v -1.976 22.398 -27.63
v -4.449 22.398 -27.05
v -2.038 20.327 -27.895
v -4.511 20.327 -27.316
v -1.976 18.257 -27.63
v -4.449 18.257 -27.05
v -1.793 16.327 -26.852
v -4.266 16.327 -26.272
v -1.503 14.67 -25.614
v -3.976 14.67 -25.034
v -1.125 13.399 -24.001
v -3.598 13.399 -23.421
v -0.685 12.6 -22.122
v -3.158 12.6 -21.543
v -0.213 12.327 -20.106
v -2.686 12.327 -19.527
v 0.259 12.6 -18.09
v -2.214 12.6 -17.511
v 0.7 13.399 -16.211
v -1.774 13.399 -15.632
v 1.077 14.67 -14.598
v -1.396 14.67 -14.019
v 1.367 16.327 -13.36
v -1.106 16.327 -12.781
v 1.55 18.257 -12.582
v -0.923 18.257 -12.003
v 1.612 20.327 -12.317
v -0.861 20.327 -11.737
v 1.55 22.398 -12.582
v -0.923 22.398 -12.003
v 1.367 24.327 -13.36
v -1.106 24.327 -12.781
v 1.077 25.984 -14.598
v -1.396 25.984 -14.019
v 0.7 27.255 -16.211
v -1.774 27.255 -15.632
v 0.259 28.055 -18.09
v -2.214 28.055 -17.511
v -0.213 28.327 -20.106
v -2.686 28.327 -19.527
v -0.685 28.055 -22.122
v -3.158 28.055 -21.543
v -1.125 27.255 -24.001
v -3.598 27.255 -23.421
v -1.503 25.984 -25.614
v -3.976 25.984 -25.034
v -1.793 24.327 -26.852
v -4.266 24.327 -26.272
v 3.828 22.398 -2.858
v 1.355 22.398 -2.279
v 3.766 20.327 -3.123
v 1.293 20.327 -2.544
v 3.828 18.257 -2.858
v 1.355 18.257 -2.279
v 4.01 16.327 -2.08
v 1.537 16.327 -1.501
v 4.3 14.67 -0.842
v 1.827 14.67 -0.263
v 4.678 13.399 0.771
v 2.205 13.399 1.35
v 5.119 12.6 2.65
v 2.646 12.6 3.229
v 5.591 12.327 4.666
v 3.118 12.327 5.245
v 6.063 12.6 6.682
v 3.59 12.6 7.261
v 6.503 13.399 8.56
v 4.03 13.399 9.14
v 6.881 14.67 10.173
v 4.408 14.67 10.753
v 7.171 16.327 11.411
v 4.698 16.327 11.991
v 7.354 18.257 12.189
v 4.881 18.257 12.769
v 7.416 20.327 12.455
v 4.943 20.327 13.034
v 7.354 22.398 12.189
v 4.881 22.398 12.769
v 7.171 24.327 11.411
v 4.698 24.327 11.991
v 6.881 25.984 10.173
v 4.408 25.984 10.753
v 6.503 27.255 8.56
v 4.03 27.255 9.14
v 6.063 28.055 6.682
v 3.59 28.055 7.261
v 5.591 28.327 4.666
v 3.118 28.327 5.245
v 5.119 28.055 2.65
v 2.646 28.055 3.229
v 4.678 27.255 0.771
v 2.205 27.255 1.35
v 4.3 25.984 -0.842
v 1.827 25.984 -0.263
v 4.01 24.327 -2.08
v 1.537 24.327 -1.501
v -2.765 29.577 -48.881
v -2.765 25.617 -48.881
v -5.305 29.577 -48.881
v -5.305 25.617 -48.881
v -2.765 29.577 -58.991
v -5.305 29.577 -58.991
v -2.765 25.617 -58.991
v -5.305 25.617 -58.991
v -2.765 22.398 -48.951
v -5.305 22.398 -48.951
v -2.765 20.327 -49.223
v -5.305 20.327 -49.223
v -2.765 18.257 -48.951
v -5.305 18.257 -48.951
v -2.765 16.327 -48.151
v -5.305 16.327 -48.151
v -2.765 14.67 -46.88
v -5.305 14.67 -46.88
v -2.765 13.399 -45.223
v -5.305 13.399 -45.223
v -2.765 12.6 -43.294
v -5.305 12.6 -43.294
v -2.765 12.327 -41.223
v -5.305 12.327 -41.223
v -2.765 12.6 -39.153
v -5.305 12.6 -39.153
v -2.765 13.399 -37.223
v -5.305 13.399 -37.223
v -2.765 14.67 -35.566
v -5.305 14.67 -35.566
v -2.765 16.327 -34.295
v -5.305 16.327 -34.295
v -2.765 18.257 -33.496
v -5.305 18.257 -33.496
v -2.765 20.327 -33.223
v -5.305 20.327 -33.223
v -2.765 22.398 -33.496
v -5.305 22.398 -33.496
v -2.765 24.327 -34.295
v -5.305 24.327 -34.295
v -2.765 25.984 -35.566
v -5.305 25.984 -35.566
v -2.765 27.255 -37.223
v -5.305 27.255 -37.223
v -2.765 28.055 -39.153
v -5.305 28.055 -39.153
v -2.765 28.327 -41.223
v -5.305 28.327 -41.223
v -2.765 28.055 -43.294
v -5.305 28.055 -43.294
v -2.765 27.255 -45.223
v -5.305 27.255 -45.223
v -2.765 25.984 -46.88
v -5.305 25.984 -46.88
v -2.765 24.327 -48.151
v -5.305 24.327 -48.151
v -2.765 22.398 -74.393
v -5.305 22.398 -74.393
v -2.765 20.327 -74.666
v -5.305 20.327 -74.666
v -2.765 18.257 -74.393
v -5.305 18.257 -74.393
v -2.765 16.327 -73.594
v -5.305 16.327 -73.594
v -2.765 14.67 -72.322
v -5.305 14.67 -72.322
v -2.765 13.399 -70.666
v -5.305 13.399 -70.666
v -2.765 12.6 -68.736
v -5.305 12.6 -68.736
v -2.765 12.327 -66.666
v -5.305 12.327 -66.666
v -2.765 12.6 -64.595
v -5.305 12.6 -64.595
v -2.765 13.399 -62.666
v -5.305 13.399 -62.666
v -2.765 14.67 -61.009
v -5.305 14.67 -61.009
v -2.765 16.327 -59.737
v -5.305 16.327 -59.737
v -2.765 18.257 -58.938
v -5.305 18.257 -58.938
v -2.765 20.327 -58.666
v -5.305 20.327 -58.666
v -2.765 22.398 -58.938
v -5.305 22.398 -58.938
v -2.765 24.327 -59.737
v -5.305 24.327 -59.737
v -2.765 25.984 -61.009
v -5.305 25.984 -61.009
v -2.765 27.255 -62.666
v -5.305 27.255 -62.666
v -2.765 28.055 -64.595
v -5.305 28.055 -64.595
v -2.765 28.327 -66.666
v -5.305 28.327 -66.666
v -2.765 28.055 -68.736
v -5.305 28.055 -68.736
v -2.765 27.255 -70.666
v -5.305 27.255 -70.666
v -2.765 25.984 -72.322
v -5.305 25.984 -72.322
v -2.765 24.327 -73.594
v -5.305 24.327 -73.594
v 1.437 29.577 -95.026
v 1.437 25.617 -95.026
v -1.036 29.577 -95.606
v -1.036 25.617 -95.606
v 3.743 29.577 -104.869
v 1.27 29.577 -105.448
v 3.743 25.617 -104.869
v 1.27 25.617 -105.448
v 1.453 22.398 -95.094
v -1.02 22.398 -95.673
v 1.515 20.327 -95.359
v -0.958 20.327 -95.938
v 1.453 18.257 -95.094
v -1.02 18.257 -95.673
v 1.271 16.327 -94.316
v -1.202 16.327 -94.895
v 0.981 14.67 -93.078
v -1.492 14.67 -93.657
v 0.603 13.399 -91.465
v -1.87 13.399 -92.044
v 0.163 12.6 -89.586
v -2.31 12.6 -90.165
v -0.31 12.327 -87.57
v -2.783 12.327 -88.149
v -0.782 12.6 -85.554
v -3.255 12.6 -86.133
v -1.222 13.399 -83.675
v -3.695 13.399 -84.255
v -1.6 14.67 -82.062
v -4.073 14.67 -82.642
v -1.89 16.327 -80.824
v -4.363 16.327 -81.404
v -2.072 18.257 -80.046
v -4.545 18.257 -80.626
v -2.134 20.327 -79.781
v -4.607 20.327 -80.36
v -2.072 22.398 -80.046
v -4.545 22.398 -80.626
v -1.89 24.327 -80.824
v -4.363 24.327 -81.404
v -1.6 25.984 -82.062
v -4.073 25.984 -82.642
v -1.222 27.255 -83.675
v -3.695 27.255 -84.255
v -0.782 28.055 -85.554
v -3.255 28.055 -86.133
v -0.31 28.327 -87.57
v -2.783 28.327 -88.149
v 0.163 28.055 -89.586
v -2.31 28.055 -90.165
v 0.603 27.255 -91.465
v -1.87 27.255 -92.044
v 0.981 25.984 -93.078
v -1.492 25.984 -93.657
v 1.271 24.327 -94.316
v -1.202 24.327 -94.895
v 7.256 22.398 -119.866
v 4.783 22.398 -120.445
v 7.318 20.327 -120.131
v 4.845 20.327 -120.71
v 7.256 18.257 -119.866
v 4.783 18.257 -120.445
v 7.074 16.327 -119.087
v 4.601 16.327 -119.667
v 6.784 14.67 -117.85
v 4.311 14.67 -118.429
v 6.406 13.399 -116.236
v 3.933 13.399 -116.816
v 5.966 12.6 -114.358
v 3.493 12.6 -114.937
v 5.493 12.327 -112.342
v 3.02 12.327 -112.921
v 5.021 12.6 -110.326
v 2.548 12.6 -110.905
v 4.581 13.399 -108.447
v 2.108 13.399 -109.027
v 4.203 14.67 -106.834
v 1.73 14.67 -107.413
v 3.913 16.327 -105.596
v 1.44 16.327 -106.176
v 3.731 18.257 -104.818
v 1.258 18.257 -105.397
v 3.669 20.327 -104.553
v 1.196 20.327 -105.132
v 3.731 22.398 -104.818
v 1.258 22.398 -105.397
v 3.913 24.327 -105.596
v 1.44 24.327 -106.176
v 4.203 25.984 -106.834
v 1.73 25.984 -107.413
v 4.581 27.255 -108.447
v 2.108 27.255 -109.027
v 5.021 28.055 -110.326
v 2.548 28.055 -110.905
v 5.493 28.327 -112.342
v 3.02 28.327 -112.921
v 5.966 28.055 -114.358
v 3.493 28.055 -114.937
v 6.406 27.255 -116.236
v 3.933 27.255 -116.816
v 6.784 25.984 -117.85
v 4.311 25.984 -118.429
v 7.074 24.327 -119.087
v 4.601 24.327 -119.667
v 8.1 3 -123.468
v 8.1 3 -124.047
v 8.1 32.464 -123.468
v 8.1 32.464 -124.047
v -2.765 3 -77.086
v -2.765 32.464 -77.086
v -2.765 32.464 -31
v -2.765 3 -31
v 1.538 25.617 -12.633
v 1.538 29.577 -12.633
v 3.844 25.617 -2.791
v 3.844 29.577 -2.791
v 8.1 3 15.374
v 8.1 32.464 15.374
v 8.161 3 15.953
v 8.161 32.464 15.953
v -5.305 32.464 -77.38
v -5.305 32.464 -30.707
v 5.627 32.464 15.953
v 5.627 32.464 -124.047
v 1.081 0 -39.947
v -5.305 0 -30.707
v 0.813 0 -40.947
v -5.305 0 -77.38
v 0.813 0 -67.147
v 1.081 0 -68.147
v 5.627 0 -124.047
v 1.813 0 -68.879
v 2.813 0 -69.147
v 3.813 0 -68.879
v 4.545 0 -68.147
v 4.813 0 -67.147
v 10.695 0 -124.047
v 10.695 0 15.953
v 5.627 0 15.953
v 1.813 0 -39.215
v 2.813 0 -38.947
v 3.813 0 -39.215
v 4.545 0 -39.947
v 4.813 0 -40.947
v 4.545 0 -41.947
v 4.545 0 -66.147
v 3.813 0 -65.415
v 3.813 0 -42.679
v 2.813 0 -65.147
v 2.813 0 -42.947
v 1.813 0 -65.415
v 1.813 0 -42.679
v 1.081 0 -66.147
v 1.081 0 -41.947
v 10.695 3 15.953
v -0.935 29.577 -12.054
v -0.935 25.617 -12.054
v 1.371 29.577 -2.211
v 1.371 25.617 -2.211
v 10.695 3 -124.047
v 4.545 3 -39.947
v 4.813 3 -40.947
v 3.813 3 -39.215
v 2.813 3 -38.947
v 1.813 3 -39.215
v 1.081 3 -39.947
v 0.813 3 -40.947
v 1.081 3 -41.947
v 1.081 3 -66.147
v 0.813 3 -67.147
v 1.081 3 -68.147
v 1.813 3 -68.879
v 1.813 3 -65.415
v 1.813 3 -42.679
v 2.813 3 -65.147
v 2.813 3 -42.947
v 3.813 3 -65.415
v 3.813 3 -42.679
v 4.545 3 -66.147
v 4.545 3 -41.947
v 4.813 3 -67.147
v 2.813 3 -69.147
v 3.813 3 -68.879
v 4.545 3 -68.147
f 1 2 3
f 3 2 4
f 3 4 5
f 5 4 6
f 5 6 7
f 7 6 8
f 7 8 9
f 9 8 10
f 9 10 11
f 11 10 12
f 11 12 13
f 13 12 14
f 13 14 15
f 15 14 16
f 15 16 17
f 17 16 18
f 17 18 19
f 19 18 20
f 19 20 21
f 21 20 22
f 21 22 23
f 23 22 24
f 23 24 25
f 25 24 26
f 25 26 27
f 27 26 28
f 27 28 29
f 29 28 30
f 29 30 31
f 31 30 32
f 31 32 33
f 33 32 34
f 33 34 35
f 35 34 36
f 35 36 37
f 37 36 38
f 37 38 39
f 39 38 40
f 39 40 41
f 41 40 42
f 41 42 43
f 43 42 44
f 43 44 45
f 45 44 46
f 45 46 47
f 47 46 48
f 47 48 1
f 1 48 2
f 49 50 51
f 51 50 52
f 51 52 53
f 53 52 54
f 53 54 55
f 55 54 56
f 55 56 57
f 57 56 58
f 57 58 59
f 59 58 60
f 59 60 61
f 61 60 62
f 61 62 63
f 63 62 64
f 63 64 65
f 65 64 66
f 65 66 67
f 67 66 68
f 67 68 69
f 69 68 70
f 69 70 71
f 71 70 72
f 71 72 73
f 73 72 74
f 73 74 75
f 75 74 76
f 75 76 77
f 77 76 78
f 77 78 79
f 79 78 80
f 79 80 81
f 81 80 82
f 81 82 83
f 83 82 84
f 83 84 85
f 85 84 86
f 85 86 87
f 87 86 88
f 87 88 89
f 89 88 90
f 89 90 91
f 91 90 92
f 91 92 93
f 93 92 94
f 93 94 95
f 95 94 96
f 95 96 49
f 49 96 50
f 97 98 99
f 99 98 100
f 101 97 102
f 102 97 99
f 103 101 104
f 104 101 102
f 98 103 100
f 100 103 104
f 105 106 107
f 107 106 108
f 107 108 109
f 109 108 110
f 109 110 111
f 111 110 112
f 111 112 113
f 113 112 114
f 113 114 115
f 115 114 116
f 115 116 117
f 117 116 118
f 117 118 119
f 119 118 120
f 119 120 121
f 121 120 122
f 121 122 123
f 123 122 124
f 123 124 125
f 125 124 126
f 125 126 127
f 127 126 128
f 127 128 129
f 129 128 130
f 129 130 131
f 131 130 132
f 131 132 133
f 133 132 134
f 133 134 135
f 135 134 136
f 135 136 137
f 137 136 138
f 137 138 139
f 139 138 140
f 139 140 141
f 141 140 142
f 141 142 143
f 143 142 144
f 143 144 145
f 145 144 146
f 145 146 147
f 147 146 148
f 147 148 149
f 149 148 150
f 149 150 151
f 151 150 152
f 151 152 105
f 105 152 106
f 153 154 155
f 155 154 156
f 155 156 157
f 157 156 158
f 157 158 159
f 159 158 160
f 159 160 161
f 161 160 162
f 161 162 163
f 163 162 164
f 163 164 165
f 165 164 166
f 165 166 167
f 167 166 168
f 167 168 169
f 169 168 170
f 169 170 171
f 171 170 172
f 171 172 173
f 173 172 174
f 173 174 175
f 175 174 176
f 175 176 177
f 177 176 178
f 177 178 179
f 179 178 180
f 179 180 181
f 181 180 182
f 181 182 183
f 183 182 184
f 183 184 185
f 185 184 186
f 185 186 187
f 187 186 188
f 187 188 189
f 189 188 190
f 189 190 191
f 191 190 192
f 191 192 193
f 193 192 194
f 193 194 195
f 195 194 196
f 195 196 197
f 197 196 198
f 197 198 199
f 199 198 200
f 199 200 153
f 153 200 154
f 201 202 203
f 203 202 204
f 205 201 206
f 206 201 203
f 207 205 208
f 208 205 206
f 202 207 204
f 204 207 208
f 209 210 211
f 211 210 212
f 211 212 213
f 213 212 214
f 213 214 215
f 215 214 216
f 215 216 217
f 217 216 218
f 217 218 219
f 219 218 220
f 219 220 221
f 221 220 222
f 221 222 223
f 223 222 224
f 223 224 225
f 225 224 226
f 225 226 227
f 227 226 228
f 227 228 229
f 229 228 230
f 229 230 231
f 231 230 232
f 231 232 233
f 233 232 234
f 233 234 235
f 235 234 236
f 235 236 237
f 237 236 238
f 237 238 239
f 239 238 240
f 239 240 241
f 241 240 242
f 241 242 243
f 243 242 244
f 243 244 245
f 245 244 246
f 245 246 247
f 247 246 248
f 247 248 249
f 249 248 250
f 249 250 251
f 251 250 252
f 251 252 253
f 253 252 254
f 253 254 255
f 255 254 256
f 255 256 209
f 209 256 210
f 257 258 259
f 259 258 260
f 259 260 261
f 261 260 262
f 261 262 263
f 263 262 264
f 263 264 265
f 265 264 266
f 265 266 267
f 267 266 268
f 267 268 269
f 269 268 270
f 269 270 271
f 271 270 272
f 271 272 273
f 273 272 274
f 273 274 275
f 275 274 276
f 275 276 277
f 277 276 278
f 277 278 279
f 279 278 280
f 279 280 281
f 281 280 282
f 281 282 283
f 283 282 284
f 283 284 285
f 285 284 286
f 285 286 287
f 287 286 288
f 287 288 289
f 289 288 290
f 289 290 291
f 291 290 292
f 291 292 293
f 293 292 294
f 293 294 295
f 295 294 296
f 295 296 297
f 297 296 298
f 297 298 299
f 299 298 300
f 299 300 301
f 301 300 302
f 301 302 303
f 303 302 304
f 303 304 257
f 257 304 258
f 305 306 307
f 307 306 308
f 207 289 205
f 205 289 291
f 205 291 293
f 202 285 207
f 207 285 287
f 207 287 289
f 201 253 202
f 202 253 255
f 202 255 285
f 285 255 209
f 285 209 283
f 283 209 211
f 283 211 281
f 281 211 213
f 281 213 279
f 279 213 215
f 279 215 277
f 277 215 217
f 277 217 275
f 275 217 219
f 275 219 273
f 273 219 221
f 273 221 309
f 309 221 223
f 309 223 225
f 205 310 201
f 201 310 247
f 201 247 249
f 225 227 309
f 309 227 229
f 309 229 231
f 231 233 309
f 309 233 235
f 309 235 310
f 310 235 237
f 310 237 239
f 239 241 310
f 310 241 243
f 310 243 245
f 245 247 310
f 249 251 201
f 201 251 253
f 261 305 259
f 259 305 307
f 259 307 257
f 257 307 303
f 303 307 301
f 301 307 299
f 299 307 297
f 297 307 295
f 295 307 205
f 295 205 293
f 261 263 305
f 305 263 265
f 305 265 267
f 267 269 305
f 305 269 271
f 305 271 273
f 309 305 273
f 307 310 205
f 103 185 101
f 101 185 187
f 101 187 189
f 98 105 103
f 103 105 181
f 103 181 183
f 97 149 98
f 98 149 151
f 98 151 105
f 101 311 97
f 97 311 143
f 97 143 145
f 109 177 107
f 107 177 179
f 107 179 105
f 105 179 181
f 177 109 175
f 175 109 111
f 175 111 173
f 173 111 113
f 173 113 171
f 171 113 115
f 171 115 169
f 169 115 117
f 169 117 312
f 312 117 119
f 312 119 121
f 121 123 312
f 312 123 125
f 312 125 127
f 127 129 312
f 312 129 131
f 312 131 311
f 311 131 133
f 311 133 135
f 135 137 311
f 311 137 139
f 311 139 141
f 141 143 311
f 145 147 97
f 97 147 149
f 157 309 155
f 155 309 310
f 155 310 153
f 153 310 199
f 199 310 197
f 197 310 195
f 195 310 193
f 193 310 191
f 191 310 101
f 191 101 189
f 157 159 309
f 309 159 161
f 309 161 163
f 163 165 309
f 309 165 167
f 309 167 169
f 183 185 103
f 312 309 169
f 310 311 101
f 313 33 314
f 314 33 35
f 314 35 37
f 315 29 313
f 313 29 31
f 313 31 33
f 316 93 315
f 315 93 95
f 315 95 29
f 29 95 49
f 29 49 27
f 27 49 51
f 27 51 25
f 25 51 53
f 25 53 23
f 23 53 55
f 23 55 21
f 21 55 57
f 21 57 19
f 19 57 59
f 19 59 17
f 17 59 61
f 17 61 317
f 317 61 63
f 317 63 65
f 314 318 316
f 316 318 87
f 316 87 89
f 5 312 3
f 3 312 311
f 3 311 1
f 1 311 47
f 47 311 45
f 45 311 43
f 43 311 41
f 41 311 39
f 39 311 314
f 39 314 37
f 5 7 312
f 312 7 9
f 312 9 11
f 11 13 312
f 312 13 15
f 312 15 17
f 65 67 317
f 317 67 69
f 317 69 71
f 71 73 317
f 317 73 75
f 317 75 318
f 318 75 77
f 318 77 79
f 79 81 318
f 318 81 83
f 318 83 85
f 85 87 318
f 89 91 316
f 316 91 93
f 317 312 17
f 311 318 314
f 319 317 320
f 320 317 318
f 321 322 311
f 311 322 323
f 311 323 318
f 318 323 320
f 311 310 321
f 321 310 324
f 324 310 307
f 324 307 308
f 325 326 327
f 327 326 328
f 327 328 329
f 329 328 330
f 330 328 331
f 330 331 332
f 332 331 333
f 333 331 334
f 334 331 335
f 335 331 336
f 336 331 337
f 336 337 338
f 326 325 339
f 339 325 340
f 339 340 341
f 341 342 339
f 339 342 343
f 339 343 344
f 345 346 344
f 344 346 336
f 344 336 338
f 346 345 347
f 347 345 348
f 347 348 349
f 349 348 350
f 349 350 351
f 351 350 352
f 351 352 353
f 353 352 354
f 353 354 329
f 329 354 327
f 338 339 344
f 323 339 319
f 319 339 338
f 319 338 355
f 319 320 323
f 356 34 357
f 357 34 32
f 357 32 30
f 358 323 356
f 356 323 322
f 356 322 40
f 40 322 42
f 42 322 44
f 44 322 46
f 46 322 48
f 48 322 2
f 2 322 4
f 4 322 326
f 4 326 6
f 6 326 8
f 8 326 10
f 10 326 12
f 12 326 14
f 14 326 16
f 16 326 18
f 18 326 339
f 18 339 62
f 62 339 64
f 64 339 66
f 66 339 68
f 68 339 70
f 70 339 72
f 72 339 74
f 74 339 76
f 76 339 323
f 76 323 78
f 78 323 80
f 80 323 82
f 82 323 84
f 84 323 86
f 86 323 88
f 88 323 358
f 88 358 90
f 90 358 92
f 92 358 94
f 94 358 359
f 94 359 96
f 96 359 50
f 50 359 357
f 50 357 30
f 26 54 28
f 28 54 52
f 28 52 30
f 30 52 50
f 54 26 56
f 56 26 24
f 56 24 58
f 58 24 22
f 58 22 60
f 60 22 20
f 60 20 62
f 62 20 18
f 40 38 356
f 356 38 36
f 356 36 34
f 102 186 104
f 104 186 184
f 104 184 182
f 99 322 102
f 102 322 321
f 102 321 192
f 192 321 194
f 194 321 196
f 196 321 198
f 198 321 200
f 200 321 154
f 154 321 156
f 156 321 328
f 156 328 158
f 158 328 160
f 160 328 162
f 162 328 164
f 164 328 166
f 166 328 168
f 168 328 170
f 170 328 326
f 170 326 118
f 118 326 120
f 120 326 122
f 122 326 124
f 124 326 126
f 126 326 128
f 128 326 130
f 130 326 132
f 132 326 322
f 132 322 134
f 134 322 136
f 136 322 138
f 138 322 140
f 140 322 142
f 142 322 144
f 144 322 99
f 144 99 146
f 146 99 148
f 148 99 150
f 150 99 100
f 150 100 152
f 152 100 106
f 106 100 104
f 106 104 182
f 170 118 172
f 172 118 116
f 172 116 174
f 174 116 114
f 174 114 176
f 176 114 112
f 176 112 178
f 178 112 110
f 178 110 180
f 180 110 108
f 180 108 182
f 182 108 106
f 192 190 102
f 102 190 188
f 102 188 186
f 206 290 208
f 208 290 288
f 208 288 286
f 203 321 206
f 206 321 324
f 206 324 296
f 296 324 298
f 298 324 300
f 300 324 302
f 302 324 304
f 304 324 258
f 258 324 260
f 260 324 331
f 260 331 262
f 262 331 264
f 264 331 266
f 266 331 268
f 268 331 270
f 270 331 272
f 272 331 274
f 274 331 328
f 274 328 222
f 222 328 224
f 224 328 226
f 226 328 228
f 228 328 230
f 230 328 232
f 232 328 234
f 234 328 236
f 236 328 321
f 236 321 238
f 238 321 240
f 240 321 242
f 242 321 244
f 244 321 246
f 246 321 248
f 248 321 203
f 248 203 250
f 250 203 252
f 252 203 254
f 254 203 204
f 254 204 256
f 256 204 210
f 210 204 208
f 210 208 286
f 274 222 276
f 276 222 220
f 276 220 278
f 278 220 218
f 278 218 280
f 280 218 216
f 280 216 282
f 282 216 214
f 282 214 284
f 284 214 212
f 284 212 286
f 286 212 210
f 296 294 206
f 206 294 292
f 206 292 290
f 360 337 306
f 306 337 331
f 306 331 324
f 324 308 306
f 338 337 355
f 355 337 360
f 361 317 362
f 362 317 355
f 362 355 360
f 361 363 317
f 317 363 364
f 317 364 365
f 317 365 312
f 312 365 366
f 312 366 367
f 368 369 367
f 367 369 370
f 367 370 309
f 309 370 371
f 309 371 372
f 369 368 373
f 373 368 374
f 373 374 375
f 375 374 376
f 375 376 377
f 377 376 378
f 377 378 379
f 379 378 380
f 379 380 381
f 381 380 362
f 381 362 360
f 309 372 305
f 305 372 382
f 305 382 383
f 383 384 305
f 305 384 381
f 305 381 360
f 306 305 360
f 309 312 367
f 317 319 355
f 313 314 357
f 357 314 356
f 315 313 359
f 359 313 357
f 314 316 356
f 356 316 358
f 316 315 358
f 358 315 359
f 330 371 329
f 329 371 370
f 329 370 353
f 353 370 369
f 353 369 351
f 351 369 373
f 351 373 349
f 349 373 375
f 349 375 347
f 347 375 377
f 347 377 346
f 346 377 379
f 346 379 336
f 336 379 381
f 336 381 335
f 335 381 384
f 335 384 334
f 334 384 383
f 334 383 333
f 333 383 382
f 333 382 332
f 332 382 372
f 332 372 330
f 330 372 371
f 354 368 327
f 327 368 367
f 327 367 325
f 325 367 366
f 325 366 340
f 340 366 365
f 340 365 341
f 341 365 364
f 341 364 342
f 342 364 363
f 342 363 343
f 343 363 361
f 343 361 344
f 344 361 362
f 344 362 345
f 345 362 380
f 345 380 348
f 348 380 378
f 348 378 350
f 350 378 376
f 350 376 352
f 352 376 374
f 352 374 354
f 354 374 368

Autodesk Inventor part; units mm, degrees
ref_plane "YZ Plane" through (0, 0, 0) normal (1, 0, 0) x (0, 1, 0)
ref_plane "XZ Plane" through (0, 0, 0) normal (0, 1, 0) x (-1, 0, 0)
ref_plane "XY Plane" through (0, 0, 0) normal (0, 0, 1) x (1, 0, 0)
sketch "Base" plane through (0, 0, 0) normal (0, 1, 0) x (-1, 0, 0)
  line L0 (-10.6945, 15.9529) -> (-10.6945, -124.0471)
  line L1 (5.3055, -77.3796) -> (5.3055, -30.7069)
  line L2 (-10.6945, 15.9529) -> (-5.6266, 15.9529)
  line L3 (-5.6266, 15.9529) -> (5.3055, -30.7069)
  line L4 (-10.6945, -124.0471) -> (-5.6266, -124.0471)
  line L5 (5.3055, -77.3796) -> (-5.6266, -124.0471)
  point P0 (0, 0)
  dimension "d1" = 140
extrude "Extrusion1" add sketch "Base" along normal blind 3
sketch "FrontWall" plane through (0, 3, 0) normal (0, 1, 0) x (1, 0, 0)
  line L0 (-5.3055, 30.7069) -> (5.6266, -15.9529) projected
  line L1 (-5.3055, 77.3796) -> (-5.3055, 30.7069) projected
  line L2 (5.6266, 124.0471) -> (-5.3055, 77.3796) projected
  line L3 (8.0997, -15.3735) -> (-2.7655, 31.0004)
  line L4 (-2.7655, 31.0004) -> (-2.7655, 77.0861)
  line L5 (-2.7655, 77.0861) -> (8.0997, 123.4677)
  line L6 (8.0997, -15.3735) -> (8.1606, -15.9529)
  line L7 (5.6266, -15.9529) -> (10.6945, -15.9529) projected
  line L8 (8.0997, 123.4677) -> (8.0997, 124.0471)
  line L9 (10.6945, 124.0471) -> (5.6266, 124.0471) projected
  point P0 (0, 0)
  dimension "d6" = 2.54
extrude "Extrusion2" add sketch "FrontWall" along normal blind 29.464
sketch "Sketch3" plane through (-5.3055, 0, -77.3796) normal (-0.9736421, 0, -0.2280812) x (-0.2280812, 0, 0.9736421)
  line L0 (-47.9308, 0) -> (-47.9308, 32.464) projected
  line L1 (0, 0) -> (0, 32.464) projected
  line L2 (-1.0536, 30.5772) -> (-46.5036, 30.5772)
  line L3 (-46.5036, 30.5772) -> (-46.5036, 10.0772)
  line L4 (-46.5036, 10.0772) -> (-1.0536, 10.0772)
  line L5 (-1.0536, 10.0772) -> (-1.0536, 30.5772)
  line L6 (-23.7786, 29.5772) -> (-28.8286, 29.5772)
  line L7 (-28.8286, 29.5772) -> (-28.8286, 25.6172)
  line L8 (-28.8286, 25.6172) -> (-18.7194, 25.6172)
  line L9 (-18.7194, 25.6172) -> (-18.7194, 29.5772)
  line L10 (-18.7194, 29.5772) -> (-23.7786, 29.5772)
  point P0 (74.13, 0)
  point P1 (-36.5036, 20.3272)
  point P2 (-11.0612, 20.3272)
  dimension "d9" = 47.9308
  dimension "d10" = 45.45
  dimension "d11" = 20.5
hole "Hole1" at (-2.7826, 20.3272, -88.1493) at (3.0203, 20.3272, -112.9211) direction (0.9736421, 0, 0.2280812) diameter 16 end through all
extrude "Extrusion3" cut sketch "Sketch3" against normal blind 29.464 contours L10 L9 L8 L7 L6
sketch "Sketch4" plane through (-5.3055, 0, -77.3796) normal (-1, 0, 0) x (0, 0, 1)
  point P0 (77.3796, 0)
sketch "Sketch5" plane through (-5.3055, 0, -77.3796) normal (-1, 0, 0) x (0, 0, 1)
  line L0 (-47.9308, 0) -> (-47.9308, 32.464)
  line L1 (0, 0) -> (0, 32.464)
  line L2 (46.1641, 30.5772) -> (0.7141, 30.5772)
  line L3 (0.7141, 30.5772) -> (0.7141, 10.0772)
  line L4 (0.7141, 10.0772) -> (46.1641, 10.0772)
  line L5 (46.1641, 10.0772) -> (46.1641, 30.5772)
  line L6 (23.4391, 29.5772) -> (18.3891, 29.5772)
  line L7 (18.3891, 29.5772) -> (18.3891, 25.6172)
  line L8 (18.3891, 25.6172) -> (28.4983, 25.6172)
  line L9 (28.4983, 25.6172) -> (28.4983, 29.5772)
  line L10 (28.4983, 29.5772) -> (23.4391, 29.5772)
  point P0 (77.3796, 0)
  point P1 (74.13, 0)
  point P2 (10.7141, 20.3272)
  point P3 (36.1565, 20.3272)
  dimension "d27" = 47.9308
  dimension "d28" = 45.45
  dimension "d29" = 20.5
hole "Hole2" at (-5.3055, 20.3272, -41.2231) at (-5.3055, 20.3272, -66.6655) direction (1, 0, 0) diameter 16 end through all
extrude "Extrusion4" cut sketch "Sketch5" against normal blind 29.464 contours L10 L9 L8 L7 L6
sketch "Sketch6" plane through (5.6266, 0, 15.9529) normal (-0.9736338, 0, 0.2281165) x (0.2281165, 0, 0.9736338)
  line L0 (-47.9308, 0) -> (-47.9308, 32.464)
  line L1 (-47.1544, 0) -> (-47.1544, 32.464)
  line L2 (-0.9903, 30.5772) -> (-46.4403, 30.5772)
  line L3 (-46.4403, 30.5772) -> (-46.4403, 10.0772)
  line L4 (-46.4403, 10.0772) -> (-0.9903, 10.0772)
  line L5 (-0.9903, 10.0772) -> (-0.9903, 30.5772)
  line L6 (-23.7153, 29.5772) -> (-28.7653, 29.5772)
  line L7 (-28.7653, 29.5772) -> (-28.7653, 25.6172)
  line L8 (-28.7653, 25.6172) -> (-18.6561, 25.6172)
  line L9 (-18.6561, 25.6172) -> (-18.6561, 29.5772)
  line L10 (-18.6561, 29.5772) -> (-23.7153, 29.5772)
  point P0 (-16.8159, 0)
  point P1 (77.3796, 0)
  point P2 (74.13, 0)
  point P3 (-36.4403, 20.3272)
  point P4 (-10.9979, 20.3272)
  dimension "d39" = 0.7874
  dimension "d40" = 45.45
  dimension "d41" = 20.5
hole "Hole3" at (-2.686, 20.3272, -19.5266) at (3.1178, 20.3272, 5.245) direction (0.9736338, 0, -0.2281165) diameter 16 end through all
extrude "Extrusion5" cut sketch "Sketch6" against normal blind 29.464 contours L10 L9 L8 L7 L6
sketch "Sketch7" plane through (0, 3, 0) normal (0, 1, 0) x (1, 0, 0)
  line L0 (10.6945, 124.0471) -> (10.6945, -15.9529) projected
  point P0 (0, 0)
  point P1 (2.8129, 67.1471)
  point P2 (2.8129, 40.9471)
hole "Hole4" at (2.8129, 3, -40.9471) at (2.8129, 3, -67.1471) direction (0, -1, 0) diameter 4 end through all
properties part number "UltrasonicSensorMount"
